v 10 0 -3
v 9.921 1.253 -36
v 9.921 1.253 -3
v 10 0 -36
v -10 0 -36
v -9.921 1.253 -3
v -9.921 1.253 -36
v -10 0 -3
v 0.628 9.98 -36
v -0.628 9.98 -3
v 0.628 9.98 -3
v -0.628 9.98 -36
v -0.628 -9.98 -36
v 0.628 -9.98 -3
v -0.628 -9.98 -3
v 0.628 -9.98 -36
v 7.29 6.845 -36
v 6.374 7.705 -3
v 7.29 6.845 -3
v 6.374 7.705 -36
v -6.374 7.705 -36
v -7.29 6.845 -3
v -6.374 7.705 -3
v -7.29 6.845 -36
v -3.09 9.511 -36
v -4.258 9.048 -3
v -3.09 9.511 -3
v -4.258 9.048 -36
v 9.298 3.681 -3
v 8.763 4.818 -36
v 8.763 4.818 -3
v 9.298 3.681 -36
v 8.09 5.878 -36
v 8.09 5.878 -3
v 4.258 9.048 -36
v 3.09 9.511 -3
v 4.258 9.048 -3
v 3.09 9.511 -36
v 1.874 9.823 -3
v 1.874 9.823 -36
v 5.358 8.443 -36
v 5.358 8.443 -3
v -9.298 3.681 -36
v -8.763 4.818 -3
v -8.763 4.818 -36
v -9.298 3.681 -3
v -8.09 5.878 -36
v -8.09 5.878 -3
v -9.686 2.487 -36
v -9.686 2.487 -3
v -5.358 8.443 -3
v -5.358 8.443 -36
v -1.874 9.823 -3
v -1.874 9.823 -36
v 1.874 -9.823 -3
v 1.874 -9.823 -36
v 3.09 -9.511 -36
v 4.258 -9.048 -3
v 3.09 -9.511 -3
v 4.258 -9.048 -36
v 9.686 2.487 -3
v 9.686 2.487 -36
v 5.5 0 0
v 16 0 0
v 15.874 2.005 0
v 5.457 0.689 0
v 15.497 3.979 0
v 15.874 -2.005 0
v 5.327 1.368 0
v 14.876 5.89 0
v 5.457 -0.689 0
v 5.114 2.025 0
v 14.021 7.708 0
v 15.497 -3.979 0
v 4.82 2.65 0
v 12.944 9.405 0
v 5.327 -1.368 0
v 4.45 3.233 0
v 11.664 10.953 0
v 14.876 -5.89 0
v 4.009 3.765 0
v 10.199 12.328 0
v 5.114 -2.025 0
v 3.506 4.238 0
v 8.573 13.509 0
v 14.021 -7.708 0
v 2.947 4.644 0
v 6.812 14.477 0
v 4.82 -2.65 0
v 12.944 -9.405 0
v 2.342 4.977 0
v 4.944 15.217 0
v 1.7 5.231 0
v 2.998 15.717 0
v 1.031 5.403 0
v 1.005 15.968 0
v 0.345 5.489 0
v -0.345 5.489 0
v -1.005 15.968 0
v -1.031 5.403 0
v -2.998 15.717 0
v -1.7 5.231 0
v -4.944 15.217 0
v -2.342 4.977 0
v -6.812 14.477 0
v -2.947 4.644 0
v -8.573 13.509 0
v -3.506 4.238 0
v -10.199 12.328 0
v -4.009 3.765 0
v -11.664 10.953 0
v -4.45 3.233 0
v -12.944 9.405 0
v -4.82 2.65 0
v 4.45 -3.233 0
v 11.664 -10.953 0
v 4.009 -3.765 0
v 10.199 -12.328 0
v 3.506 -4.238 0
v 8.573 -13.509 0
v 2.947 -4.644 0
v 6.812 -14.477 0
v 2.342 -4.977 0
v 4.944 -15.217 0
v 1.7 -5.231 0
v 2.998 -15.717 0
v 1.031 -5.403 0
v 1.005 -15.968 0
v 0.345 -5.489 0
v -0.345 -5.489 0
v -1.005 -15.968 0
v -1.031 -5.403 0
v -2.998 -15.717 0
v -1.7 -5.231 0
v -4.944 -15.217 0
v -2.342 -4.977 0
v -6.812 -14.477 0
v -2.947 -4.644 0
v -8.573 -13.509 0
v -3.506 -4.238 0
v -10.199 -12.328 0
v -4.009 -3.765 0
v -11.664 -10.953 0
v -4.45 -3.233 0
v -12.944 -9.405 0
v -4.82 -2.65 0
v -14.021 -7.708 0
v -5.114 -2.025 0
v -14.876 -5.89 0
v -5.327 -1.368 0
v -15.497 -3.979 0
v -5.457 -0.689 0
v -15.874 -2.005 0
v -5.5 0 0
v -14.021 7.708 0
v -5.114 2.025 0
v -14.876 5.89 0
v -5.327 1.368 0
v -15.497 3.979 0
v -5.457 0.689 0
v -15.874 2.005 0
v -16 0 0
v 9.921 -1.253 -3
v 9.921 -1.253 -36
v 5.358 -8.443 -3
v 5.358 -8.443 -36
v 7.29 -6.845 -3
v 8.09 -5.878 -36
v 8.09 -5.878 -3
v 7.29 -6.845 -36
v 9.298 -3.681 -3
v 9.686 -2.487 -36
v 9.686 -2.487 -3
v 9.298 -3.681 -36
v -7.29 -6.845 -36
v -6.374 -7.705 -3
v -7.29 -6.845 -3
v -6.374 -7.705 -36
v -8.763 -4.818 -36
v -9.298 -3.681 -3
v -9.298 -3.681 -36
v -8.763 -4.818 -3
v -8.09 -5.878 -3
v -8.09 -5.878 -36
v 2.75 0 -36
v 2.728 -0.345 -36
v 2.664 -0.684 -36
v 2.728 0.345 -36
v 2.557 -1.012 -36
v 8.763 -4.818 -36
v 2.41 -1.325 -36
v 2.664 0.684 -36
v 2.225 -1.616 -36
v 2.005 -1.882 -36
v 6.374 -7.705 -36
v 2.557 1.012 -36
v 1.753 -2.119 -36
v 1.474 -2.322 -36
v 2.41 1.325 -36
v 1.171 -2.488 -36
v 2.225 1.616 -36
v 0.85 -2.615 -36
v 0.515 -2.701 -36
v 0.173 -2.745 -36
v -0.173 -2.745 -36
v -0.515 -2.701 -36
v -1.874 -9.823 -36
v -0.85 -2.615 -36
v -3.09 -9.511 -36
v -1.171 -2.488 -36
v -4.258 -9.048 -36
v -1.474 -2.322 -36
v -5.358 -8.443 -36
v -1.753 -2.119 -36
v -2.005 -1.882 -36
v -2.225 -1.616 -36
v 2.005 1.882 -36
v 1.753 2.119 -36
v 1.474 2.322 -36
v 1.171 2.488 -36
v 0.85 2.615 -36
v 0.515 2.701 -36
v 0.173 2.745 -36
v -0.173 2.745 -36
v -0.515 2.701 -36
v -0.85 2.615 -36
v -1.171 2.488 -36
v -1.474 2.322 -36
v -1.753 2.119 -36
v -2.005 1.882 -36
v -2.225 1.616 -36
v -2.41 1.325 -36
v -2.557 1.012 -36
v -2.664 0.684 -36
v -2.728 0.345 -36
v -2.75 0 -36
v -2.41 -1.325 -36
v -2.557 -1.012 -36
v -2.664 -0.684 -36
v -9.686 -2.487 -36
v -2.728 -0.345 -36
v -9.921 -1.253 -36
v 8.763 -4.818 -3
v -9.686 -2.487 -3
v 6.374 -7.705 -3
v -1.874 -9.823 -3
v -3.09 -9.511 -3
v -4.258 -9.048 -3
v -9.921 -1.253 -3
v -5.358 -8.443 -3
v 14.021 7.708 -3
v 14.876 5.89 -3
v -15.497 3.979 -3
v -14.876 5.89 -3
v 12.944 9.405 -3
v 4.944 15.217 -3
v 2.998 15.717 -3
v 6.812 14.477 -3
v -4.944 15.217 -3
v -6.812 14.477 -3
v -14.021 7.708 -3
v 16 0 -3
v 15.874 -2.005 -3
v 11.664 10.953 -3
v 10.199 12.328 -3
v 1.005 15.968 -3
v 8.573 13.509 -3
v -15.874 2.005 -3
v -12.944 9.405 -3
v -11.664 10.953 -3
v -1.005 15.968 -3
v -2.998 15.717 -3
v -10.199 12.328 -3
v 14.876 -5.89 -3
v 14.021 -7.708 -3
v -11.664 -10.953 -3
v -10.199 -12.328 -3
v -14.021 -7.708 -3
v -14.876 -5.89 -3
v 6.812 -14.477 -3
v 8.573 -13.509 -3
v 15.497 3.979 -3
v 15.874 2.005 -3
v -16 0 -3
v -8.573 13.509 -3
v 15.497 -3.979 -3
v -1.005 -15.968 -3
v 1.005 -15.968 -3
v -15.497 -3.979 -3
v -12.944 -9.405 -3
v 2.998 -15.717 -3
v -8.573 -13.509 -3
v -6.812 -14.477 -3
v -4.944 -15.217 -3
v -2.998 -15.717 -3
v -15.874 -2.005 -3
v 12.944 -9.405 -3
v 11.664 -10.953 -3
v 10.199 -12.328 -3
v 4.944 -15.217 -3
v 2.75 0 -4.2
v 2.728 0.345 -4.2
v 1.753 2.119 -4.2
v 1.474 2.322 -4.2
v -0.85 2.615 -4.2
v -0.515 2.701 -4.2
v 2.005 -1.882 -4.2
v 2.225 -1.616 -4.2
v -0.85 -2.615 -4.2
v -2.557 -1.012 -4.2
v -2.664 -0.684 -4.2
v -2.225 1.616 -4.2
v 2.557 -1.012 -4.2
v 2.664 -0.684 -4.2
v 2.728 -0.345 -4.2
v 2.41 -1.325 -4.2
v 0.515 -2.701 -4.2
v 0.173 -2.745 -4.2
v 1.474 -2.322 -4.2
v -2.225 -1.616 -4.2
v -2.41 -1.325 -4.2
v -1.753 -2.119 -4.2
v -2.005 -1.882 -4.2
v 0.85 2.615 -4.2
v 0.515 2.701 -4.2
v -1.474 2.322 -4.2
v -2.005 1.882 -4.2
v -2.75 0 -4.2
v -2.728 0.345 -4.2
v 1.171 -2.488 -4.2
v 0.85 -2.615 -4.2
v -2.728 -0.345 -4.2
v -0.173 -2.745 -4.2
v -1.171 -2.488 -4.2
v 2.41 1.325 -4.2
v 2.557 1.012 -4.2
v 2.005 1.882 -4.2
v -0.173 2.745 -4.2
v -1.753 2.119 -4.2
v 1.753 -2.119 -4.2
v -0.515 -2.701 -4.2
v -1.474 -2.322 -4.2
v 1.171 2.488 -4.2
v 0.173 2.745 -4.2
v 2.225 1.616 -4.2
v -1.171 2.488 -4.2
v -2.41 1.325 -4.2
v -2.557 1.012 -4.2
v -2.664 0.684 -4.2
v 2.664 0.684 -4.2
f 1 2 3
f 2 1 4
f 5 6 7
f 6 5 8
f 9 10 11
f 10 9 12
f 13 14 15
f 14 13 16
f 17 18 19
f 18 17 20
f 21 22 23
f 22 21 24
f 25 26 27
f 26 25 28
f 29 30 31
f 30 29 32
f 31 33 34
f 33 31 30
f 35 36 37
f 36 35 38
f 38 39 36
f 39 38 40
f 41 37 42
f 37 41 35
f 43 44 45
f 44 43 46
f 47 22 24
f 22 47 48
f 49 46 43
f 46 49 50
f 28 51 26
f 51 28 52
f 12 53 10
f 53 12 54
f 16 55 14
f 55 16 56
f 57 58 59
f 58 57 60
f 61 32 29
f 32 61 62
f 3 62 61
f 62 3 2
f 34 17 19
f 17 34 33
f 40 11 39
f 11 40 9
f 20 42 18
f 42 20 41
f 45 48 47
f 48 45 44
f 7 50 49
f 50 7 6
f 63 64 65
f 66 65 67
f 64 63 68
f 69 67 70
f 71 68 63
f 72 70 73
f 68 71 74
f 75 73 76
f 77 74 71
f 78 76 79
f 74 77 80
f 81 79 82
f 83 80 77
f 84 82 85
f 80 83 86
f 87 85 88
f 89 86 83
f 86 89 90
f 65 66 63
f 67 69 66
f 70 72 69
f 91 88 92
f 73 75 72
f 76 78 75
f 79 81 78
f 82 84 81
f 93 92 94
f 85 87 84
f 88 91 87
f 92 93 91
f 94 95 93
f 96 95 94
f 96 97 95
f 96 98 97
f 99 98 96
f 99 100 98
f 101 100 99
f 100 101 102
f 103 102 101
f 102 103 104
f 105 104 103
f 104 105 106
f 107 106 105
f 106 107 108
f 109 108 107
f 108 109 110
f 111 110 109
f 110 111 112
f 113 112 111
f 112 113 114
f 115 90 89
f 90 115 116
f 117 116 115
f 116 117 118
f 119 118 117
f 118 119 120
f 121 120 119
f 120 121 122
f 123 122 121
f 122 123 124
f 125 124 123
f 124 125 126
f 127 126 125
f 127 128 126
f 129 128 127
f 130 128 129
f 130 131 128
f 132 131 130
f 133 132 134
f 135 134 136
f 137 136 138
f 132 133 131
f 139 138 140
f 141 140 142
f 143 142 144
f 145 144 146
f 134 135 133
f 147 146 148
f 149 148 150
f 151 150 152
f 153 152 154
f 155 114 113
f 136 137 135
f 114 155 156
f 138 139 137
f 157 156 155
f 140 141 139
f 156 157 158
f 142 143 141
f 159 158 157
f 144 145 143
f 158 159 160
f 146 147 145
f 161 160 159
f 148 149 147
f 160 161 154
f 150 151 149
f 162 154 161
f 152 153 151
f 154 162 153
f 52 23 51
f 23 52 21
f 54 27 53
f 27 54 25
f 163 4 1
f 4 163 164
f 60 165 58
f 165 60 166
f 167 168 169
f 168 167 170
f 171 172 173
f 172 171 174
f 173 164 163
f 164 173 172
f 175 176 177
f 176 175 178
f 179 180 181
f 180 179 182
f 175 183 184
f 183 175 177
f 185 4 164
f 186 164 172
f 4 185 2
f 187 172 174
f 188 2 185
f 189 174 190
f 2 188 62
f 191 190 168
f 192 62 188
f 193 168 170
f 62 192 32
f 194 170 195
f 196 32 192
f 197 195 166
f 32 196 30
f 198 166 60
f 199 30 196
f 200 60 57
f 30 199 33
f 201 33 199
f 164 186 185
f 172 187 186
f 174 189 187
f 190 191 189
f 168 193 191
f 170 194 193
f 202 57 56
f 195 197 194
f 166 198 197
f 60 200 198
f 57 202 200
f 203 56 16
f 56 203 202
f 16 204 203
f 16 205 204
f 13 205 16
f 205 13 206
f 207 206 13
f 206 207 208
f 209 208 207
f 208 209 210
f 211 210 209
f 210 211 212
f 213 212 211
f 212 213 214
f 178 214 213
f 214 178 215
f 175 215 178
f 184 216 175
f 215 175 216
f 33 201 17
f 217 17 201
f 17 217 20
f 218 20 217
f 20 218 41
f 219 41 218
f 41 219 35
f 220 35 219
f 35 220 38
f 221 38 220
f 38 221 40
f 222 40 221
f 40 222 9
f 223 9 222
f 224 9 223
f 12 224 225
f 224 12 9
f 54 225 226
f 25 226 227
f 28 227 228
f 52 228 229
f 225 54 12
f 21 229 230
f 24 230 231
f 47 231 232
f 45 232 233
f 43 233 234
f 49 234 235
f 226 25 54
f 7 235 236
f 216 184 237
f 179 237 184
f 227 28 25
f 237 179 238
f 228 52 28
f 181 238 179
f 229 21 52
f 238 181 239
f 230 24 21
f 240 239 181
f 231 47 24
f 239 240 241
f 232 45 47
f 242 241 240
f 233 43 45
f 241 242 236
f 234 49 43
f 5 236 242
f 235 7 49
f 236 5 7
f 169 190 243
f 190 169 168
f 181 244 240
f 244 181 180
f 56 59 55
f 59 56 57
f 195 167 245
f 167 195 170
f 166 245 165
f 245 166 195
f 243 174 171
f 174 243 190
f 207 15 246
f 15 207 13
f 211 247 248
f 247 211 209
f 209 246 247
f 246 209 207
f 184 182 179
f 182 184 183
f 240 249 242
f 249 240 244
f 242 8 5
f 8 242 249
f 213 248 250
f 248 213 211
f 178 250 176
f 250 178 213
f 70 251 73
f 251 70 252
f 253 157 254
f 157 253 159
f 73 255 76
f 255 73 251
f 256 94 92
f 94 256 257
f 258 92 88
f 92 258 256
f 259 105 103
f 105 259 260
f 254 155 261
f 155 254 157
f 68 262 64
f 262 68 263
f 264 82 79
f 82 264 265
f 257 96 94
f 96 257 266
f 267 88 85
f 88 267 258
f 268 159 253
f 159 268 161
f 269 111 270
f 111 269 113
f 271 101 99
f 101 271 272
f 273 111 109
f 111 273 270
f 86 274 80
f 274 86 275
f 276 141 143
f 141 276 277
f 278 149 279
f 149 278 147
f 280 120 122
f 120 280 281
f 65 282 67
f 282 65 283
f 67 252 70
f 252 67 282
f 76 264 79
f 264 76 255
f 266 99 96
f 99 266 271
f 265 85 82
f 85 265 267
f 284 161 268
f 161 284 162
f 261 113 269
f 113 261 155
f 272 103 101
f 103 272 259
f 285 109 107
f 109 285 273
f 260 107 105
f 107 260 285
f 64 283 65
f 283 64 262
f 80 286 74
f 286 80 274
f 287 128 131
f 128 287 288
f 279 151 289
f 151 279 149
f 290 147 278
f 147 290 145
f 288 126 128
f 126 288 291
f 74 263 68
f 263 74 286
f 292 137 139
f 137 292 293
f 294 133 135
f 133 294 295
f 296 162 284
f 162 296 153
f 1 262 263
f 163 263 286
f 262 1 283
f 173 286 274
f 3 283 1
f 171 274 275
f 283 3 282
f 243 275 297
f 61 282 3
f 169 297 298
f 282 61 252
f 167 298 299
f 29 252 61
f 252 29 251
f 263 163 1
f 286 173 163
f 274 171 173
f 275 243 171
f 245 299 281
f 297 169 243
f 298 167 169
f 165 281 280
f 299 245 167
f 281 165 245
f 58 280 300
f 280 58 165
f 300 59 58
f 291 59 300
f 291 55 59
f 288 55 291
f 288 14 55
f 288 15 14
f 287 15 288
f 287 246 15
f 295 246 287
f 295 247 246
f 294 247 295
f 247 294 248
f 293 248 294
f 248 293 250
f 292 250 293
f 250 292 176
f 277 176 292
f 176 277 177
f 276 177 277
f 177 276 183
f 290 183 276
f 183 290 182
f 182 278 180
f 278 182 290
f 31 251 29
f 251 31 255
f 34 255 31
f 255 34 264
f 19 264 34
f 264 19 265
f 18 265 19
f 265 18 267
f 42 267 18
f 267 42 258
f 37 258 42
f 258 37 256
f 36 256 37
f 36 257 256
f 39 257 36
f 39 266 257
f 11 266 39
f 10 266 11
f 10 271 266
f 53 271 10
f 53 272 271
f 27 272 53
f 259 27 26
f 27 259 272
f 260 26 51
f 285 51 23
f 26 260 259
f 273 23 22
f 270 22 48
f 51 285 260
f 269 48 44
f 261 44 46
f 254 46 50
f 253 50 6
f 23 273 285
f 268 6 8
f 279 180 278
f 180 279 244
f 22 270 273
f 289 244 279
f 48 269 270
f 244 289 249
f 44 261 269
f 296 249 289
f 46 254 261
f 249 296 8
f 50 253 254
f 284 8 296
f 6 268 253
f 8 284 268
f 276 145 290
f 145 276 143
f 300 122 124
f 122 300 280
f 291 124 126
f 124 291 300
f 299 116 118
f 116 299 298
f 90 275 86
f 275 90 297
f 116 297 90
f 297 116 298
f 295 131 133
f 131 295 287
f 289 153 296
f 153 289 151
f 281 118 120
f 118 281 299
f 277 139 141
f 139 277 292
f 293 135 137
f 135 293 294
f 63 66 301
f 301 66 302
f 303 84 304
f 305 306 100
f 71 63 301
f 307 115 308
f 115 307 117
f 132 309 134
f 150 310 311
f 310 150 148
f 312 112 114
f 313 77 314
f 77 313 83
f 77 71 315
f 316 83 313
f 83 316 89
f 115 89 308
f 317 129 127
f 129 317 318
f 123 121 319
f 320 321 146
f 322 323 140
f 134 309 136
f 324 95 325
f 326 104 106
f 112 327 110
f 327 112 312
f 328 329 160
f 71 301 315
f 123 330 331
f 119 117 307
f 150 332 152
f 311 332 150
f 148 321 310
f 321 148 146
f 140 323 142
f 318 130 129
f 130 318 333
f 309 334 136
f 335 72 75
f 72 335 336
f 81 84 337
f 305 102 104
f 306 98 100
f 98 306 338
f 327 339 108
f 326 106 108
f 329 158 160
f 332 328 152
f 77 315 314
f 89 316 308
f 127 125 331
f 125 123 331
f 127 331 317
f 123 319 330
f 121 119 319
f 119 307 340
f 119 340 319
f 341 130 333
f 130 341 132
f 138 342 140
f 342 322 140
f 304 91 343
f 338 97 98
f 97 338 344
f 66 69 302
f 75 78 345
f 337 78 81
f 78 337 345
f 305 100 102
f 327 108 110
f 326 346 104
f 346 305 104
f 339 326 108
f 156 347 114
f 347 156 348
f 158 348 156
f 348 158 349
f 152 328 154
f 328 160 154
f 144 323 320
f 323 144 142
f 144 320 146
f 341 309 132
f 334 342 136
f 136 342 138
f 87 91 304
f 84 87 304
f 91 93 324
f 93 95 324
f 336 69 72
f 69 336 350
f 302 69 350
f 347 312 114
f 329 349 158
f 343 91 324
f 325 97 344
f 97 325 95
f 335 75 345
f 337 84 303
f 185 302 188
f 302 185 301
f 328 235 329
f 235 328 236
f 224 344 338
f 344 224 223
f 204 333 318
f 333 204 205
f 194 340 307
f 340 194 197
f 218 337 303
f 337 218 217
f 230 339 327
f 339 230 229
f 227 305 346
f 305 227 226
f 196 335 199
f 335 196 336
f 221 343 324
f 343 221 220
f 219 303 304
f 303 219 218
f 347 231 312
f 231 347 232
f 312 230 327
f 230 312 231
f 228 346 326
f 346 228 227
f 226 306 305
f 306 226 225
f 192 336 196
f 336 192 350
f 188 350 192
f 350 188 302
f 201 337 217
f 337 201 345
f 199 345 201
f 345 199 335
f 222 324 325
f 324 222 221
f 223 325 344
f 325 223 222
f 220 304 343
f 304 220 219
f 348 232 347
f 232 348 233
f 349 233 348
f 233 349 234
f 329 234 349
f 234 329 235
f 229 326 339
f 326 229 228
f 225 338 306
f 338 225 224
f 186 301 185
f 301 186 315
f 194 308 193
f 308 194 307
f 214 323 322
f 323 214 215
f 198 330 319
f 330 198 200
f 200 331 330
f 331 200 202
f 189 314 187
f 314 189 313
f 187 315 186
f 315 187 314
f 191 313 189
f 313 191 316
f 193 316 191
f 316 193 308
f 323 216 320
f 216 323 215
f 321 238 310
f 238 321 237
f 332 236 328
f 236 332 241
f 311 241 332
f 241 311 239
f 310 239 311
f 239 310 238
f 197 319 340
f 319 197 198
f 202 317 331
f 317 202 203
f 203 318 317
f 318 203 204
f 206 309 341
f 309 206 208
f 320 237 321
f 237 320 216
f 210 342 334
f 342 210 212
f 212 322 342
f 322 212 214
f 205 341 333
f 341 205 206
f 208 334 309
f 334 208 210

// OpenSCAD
$fn = 50;


difference() {
	union() {
		translate(v = [0, 0, -36.0000000000]) {
			cylinder(h = 36, r = 10.0000000000);
		}
		translate(v = [0, 0, -3.0000000000]) {
			cylinder(h = 3, r = 16.0000000000);
		}
	}
	union() {
		translate(v = [0, 0, 0]) {
			rotate(a = [0, 0, 0]) {
				difference() {
					union() {
						#translate(v = [0, 0, -36.0000000000]) {
							cylinder(h = 36, r = 2.2500000000);
						}
						#translate(v = [0, 0, -4.2000000000]) {
							cylinder(h = 4.2000000000, r1 = 2.7500000000, r2 = 5.5000000000);
						}
						#translate(v = [0, 0, -36.0000000000]) {
							cylinder(h = 36, r = 2.7500000000);
						}
						#translate(v = [0, 0, -36.0000000000]) {
							cylinder(h = 36, r = 2.2500000000);
						}
					}
					union();
				}
			}
		}
	}
}
